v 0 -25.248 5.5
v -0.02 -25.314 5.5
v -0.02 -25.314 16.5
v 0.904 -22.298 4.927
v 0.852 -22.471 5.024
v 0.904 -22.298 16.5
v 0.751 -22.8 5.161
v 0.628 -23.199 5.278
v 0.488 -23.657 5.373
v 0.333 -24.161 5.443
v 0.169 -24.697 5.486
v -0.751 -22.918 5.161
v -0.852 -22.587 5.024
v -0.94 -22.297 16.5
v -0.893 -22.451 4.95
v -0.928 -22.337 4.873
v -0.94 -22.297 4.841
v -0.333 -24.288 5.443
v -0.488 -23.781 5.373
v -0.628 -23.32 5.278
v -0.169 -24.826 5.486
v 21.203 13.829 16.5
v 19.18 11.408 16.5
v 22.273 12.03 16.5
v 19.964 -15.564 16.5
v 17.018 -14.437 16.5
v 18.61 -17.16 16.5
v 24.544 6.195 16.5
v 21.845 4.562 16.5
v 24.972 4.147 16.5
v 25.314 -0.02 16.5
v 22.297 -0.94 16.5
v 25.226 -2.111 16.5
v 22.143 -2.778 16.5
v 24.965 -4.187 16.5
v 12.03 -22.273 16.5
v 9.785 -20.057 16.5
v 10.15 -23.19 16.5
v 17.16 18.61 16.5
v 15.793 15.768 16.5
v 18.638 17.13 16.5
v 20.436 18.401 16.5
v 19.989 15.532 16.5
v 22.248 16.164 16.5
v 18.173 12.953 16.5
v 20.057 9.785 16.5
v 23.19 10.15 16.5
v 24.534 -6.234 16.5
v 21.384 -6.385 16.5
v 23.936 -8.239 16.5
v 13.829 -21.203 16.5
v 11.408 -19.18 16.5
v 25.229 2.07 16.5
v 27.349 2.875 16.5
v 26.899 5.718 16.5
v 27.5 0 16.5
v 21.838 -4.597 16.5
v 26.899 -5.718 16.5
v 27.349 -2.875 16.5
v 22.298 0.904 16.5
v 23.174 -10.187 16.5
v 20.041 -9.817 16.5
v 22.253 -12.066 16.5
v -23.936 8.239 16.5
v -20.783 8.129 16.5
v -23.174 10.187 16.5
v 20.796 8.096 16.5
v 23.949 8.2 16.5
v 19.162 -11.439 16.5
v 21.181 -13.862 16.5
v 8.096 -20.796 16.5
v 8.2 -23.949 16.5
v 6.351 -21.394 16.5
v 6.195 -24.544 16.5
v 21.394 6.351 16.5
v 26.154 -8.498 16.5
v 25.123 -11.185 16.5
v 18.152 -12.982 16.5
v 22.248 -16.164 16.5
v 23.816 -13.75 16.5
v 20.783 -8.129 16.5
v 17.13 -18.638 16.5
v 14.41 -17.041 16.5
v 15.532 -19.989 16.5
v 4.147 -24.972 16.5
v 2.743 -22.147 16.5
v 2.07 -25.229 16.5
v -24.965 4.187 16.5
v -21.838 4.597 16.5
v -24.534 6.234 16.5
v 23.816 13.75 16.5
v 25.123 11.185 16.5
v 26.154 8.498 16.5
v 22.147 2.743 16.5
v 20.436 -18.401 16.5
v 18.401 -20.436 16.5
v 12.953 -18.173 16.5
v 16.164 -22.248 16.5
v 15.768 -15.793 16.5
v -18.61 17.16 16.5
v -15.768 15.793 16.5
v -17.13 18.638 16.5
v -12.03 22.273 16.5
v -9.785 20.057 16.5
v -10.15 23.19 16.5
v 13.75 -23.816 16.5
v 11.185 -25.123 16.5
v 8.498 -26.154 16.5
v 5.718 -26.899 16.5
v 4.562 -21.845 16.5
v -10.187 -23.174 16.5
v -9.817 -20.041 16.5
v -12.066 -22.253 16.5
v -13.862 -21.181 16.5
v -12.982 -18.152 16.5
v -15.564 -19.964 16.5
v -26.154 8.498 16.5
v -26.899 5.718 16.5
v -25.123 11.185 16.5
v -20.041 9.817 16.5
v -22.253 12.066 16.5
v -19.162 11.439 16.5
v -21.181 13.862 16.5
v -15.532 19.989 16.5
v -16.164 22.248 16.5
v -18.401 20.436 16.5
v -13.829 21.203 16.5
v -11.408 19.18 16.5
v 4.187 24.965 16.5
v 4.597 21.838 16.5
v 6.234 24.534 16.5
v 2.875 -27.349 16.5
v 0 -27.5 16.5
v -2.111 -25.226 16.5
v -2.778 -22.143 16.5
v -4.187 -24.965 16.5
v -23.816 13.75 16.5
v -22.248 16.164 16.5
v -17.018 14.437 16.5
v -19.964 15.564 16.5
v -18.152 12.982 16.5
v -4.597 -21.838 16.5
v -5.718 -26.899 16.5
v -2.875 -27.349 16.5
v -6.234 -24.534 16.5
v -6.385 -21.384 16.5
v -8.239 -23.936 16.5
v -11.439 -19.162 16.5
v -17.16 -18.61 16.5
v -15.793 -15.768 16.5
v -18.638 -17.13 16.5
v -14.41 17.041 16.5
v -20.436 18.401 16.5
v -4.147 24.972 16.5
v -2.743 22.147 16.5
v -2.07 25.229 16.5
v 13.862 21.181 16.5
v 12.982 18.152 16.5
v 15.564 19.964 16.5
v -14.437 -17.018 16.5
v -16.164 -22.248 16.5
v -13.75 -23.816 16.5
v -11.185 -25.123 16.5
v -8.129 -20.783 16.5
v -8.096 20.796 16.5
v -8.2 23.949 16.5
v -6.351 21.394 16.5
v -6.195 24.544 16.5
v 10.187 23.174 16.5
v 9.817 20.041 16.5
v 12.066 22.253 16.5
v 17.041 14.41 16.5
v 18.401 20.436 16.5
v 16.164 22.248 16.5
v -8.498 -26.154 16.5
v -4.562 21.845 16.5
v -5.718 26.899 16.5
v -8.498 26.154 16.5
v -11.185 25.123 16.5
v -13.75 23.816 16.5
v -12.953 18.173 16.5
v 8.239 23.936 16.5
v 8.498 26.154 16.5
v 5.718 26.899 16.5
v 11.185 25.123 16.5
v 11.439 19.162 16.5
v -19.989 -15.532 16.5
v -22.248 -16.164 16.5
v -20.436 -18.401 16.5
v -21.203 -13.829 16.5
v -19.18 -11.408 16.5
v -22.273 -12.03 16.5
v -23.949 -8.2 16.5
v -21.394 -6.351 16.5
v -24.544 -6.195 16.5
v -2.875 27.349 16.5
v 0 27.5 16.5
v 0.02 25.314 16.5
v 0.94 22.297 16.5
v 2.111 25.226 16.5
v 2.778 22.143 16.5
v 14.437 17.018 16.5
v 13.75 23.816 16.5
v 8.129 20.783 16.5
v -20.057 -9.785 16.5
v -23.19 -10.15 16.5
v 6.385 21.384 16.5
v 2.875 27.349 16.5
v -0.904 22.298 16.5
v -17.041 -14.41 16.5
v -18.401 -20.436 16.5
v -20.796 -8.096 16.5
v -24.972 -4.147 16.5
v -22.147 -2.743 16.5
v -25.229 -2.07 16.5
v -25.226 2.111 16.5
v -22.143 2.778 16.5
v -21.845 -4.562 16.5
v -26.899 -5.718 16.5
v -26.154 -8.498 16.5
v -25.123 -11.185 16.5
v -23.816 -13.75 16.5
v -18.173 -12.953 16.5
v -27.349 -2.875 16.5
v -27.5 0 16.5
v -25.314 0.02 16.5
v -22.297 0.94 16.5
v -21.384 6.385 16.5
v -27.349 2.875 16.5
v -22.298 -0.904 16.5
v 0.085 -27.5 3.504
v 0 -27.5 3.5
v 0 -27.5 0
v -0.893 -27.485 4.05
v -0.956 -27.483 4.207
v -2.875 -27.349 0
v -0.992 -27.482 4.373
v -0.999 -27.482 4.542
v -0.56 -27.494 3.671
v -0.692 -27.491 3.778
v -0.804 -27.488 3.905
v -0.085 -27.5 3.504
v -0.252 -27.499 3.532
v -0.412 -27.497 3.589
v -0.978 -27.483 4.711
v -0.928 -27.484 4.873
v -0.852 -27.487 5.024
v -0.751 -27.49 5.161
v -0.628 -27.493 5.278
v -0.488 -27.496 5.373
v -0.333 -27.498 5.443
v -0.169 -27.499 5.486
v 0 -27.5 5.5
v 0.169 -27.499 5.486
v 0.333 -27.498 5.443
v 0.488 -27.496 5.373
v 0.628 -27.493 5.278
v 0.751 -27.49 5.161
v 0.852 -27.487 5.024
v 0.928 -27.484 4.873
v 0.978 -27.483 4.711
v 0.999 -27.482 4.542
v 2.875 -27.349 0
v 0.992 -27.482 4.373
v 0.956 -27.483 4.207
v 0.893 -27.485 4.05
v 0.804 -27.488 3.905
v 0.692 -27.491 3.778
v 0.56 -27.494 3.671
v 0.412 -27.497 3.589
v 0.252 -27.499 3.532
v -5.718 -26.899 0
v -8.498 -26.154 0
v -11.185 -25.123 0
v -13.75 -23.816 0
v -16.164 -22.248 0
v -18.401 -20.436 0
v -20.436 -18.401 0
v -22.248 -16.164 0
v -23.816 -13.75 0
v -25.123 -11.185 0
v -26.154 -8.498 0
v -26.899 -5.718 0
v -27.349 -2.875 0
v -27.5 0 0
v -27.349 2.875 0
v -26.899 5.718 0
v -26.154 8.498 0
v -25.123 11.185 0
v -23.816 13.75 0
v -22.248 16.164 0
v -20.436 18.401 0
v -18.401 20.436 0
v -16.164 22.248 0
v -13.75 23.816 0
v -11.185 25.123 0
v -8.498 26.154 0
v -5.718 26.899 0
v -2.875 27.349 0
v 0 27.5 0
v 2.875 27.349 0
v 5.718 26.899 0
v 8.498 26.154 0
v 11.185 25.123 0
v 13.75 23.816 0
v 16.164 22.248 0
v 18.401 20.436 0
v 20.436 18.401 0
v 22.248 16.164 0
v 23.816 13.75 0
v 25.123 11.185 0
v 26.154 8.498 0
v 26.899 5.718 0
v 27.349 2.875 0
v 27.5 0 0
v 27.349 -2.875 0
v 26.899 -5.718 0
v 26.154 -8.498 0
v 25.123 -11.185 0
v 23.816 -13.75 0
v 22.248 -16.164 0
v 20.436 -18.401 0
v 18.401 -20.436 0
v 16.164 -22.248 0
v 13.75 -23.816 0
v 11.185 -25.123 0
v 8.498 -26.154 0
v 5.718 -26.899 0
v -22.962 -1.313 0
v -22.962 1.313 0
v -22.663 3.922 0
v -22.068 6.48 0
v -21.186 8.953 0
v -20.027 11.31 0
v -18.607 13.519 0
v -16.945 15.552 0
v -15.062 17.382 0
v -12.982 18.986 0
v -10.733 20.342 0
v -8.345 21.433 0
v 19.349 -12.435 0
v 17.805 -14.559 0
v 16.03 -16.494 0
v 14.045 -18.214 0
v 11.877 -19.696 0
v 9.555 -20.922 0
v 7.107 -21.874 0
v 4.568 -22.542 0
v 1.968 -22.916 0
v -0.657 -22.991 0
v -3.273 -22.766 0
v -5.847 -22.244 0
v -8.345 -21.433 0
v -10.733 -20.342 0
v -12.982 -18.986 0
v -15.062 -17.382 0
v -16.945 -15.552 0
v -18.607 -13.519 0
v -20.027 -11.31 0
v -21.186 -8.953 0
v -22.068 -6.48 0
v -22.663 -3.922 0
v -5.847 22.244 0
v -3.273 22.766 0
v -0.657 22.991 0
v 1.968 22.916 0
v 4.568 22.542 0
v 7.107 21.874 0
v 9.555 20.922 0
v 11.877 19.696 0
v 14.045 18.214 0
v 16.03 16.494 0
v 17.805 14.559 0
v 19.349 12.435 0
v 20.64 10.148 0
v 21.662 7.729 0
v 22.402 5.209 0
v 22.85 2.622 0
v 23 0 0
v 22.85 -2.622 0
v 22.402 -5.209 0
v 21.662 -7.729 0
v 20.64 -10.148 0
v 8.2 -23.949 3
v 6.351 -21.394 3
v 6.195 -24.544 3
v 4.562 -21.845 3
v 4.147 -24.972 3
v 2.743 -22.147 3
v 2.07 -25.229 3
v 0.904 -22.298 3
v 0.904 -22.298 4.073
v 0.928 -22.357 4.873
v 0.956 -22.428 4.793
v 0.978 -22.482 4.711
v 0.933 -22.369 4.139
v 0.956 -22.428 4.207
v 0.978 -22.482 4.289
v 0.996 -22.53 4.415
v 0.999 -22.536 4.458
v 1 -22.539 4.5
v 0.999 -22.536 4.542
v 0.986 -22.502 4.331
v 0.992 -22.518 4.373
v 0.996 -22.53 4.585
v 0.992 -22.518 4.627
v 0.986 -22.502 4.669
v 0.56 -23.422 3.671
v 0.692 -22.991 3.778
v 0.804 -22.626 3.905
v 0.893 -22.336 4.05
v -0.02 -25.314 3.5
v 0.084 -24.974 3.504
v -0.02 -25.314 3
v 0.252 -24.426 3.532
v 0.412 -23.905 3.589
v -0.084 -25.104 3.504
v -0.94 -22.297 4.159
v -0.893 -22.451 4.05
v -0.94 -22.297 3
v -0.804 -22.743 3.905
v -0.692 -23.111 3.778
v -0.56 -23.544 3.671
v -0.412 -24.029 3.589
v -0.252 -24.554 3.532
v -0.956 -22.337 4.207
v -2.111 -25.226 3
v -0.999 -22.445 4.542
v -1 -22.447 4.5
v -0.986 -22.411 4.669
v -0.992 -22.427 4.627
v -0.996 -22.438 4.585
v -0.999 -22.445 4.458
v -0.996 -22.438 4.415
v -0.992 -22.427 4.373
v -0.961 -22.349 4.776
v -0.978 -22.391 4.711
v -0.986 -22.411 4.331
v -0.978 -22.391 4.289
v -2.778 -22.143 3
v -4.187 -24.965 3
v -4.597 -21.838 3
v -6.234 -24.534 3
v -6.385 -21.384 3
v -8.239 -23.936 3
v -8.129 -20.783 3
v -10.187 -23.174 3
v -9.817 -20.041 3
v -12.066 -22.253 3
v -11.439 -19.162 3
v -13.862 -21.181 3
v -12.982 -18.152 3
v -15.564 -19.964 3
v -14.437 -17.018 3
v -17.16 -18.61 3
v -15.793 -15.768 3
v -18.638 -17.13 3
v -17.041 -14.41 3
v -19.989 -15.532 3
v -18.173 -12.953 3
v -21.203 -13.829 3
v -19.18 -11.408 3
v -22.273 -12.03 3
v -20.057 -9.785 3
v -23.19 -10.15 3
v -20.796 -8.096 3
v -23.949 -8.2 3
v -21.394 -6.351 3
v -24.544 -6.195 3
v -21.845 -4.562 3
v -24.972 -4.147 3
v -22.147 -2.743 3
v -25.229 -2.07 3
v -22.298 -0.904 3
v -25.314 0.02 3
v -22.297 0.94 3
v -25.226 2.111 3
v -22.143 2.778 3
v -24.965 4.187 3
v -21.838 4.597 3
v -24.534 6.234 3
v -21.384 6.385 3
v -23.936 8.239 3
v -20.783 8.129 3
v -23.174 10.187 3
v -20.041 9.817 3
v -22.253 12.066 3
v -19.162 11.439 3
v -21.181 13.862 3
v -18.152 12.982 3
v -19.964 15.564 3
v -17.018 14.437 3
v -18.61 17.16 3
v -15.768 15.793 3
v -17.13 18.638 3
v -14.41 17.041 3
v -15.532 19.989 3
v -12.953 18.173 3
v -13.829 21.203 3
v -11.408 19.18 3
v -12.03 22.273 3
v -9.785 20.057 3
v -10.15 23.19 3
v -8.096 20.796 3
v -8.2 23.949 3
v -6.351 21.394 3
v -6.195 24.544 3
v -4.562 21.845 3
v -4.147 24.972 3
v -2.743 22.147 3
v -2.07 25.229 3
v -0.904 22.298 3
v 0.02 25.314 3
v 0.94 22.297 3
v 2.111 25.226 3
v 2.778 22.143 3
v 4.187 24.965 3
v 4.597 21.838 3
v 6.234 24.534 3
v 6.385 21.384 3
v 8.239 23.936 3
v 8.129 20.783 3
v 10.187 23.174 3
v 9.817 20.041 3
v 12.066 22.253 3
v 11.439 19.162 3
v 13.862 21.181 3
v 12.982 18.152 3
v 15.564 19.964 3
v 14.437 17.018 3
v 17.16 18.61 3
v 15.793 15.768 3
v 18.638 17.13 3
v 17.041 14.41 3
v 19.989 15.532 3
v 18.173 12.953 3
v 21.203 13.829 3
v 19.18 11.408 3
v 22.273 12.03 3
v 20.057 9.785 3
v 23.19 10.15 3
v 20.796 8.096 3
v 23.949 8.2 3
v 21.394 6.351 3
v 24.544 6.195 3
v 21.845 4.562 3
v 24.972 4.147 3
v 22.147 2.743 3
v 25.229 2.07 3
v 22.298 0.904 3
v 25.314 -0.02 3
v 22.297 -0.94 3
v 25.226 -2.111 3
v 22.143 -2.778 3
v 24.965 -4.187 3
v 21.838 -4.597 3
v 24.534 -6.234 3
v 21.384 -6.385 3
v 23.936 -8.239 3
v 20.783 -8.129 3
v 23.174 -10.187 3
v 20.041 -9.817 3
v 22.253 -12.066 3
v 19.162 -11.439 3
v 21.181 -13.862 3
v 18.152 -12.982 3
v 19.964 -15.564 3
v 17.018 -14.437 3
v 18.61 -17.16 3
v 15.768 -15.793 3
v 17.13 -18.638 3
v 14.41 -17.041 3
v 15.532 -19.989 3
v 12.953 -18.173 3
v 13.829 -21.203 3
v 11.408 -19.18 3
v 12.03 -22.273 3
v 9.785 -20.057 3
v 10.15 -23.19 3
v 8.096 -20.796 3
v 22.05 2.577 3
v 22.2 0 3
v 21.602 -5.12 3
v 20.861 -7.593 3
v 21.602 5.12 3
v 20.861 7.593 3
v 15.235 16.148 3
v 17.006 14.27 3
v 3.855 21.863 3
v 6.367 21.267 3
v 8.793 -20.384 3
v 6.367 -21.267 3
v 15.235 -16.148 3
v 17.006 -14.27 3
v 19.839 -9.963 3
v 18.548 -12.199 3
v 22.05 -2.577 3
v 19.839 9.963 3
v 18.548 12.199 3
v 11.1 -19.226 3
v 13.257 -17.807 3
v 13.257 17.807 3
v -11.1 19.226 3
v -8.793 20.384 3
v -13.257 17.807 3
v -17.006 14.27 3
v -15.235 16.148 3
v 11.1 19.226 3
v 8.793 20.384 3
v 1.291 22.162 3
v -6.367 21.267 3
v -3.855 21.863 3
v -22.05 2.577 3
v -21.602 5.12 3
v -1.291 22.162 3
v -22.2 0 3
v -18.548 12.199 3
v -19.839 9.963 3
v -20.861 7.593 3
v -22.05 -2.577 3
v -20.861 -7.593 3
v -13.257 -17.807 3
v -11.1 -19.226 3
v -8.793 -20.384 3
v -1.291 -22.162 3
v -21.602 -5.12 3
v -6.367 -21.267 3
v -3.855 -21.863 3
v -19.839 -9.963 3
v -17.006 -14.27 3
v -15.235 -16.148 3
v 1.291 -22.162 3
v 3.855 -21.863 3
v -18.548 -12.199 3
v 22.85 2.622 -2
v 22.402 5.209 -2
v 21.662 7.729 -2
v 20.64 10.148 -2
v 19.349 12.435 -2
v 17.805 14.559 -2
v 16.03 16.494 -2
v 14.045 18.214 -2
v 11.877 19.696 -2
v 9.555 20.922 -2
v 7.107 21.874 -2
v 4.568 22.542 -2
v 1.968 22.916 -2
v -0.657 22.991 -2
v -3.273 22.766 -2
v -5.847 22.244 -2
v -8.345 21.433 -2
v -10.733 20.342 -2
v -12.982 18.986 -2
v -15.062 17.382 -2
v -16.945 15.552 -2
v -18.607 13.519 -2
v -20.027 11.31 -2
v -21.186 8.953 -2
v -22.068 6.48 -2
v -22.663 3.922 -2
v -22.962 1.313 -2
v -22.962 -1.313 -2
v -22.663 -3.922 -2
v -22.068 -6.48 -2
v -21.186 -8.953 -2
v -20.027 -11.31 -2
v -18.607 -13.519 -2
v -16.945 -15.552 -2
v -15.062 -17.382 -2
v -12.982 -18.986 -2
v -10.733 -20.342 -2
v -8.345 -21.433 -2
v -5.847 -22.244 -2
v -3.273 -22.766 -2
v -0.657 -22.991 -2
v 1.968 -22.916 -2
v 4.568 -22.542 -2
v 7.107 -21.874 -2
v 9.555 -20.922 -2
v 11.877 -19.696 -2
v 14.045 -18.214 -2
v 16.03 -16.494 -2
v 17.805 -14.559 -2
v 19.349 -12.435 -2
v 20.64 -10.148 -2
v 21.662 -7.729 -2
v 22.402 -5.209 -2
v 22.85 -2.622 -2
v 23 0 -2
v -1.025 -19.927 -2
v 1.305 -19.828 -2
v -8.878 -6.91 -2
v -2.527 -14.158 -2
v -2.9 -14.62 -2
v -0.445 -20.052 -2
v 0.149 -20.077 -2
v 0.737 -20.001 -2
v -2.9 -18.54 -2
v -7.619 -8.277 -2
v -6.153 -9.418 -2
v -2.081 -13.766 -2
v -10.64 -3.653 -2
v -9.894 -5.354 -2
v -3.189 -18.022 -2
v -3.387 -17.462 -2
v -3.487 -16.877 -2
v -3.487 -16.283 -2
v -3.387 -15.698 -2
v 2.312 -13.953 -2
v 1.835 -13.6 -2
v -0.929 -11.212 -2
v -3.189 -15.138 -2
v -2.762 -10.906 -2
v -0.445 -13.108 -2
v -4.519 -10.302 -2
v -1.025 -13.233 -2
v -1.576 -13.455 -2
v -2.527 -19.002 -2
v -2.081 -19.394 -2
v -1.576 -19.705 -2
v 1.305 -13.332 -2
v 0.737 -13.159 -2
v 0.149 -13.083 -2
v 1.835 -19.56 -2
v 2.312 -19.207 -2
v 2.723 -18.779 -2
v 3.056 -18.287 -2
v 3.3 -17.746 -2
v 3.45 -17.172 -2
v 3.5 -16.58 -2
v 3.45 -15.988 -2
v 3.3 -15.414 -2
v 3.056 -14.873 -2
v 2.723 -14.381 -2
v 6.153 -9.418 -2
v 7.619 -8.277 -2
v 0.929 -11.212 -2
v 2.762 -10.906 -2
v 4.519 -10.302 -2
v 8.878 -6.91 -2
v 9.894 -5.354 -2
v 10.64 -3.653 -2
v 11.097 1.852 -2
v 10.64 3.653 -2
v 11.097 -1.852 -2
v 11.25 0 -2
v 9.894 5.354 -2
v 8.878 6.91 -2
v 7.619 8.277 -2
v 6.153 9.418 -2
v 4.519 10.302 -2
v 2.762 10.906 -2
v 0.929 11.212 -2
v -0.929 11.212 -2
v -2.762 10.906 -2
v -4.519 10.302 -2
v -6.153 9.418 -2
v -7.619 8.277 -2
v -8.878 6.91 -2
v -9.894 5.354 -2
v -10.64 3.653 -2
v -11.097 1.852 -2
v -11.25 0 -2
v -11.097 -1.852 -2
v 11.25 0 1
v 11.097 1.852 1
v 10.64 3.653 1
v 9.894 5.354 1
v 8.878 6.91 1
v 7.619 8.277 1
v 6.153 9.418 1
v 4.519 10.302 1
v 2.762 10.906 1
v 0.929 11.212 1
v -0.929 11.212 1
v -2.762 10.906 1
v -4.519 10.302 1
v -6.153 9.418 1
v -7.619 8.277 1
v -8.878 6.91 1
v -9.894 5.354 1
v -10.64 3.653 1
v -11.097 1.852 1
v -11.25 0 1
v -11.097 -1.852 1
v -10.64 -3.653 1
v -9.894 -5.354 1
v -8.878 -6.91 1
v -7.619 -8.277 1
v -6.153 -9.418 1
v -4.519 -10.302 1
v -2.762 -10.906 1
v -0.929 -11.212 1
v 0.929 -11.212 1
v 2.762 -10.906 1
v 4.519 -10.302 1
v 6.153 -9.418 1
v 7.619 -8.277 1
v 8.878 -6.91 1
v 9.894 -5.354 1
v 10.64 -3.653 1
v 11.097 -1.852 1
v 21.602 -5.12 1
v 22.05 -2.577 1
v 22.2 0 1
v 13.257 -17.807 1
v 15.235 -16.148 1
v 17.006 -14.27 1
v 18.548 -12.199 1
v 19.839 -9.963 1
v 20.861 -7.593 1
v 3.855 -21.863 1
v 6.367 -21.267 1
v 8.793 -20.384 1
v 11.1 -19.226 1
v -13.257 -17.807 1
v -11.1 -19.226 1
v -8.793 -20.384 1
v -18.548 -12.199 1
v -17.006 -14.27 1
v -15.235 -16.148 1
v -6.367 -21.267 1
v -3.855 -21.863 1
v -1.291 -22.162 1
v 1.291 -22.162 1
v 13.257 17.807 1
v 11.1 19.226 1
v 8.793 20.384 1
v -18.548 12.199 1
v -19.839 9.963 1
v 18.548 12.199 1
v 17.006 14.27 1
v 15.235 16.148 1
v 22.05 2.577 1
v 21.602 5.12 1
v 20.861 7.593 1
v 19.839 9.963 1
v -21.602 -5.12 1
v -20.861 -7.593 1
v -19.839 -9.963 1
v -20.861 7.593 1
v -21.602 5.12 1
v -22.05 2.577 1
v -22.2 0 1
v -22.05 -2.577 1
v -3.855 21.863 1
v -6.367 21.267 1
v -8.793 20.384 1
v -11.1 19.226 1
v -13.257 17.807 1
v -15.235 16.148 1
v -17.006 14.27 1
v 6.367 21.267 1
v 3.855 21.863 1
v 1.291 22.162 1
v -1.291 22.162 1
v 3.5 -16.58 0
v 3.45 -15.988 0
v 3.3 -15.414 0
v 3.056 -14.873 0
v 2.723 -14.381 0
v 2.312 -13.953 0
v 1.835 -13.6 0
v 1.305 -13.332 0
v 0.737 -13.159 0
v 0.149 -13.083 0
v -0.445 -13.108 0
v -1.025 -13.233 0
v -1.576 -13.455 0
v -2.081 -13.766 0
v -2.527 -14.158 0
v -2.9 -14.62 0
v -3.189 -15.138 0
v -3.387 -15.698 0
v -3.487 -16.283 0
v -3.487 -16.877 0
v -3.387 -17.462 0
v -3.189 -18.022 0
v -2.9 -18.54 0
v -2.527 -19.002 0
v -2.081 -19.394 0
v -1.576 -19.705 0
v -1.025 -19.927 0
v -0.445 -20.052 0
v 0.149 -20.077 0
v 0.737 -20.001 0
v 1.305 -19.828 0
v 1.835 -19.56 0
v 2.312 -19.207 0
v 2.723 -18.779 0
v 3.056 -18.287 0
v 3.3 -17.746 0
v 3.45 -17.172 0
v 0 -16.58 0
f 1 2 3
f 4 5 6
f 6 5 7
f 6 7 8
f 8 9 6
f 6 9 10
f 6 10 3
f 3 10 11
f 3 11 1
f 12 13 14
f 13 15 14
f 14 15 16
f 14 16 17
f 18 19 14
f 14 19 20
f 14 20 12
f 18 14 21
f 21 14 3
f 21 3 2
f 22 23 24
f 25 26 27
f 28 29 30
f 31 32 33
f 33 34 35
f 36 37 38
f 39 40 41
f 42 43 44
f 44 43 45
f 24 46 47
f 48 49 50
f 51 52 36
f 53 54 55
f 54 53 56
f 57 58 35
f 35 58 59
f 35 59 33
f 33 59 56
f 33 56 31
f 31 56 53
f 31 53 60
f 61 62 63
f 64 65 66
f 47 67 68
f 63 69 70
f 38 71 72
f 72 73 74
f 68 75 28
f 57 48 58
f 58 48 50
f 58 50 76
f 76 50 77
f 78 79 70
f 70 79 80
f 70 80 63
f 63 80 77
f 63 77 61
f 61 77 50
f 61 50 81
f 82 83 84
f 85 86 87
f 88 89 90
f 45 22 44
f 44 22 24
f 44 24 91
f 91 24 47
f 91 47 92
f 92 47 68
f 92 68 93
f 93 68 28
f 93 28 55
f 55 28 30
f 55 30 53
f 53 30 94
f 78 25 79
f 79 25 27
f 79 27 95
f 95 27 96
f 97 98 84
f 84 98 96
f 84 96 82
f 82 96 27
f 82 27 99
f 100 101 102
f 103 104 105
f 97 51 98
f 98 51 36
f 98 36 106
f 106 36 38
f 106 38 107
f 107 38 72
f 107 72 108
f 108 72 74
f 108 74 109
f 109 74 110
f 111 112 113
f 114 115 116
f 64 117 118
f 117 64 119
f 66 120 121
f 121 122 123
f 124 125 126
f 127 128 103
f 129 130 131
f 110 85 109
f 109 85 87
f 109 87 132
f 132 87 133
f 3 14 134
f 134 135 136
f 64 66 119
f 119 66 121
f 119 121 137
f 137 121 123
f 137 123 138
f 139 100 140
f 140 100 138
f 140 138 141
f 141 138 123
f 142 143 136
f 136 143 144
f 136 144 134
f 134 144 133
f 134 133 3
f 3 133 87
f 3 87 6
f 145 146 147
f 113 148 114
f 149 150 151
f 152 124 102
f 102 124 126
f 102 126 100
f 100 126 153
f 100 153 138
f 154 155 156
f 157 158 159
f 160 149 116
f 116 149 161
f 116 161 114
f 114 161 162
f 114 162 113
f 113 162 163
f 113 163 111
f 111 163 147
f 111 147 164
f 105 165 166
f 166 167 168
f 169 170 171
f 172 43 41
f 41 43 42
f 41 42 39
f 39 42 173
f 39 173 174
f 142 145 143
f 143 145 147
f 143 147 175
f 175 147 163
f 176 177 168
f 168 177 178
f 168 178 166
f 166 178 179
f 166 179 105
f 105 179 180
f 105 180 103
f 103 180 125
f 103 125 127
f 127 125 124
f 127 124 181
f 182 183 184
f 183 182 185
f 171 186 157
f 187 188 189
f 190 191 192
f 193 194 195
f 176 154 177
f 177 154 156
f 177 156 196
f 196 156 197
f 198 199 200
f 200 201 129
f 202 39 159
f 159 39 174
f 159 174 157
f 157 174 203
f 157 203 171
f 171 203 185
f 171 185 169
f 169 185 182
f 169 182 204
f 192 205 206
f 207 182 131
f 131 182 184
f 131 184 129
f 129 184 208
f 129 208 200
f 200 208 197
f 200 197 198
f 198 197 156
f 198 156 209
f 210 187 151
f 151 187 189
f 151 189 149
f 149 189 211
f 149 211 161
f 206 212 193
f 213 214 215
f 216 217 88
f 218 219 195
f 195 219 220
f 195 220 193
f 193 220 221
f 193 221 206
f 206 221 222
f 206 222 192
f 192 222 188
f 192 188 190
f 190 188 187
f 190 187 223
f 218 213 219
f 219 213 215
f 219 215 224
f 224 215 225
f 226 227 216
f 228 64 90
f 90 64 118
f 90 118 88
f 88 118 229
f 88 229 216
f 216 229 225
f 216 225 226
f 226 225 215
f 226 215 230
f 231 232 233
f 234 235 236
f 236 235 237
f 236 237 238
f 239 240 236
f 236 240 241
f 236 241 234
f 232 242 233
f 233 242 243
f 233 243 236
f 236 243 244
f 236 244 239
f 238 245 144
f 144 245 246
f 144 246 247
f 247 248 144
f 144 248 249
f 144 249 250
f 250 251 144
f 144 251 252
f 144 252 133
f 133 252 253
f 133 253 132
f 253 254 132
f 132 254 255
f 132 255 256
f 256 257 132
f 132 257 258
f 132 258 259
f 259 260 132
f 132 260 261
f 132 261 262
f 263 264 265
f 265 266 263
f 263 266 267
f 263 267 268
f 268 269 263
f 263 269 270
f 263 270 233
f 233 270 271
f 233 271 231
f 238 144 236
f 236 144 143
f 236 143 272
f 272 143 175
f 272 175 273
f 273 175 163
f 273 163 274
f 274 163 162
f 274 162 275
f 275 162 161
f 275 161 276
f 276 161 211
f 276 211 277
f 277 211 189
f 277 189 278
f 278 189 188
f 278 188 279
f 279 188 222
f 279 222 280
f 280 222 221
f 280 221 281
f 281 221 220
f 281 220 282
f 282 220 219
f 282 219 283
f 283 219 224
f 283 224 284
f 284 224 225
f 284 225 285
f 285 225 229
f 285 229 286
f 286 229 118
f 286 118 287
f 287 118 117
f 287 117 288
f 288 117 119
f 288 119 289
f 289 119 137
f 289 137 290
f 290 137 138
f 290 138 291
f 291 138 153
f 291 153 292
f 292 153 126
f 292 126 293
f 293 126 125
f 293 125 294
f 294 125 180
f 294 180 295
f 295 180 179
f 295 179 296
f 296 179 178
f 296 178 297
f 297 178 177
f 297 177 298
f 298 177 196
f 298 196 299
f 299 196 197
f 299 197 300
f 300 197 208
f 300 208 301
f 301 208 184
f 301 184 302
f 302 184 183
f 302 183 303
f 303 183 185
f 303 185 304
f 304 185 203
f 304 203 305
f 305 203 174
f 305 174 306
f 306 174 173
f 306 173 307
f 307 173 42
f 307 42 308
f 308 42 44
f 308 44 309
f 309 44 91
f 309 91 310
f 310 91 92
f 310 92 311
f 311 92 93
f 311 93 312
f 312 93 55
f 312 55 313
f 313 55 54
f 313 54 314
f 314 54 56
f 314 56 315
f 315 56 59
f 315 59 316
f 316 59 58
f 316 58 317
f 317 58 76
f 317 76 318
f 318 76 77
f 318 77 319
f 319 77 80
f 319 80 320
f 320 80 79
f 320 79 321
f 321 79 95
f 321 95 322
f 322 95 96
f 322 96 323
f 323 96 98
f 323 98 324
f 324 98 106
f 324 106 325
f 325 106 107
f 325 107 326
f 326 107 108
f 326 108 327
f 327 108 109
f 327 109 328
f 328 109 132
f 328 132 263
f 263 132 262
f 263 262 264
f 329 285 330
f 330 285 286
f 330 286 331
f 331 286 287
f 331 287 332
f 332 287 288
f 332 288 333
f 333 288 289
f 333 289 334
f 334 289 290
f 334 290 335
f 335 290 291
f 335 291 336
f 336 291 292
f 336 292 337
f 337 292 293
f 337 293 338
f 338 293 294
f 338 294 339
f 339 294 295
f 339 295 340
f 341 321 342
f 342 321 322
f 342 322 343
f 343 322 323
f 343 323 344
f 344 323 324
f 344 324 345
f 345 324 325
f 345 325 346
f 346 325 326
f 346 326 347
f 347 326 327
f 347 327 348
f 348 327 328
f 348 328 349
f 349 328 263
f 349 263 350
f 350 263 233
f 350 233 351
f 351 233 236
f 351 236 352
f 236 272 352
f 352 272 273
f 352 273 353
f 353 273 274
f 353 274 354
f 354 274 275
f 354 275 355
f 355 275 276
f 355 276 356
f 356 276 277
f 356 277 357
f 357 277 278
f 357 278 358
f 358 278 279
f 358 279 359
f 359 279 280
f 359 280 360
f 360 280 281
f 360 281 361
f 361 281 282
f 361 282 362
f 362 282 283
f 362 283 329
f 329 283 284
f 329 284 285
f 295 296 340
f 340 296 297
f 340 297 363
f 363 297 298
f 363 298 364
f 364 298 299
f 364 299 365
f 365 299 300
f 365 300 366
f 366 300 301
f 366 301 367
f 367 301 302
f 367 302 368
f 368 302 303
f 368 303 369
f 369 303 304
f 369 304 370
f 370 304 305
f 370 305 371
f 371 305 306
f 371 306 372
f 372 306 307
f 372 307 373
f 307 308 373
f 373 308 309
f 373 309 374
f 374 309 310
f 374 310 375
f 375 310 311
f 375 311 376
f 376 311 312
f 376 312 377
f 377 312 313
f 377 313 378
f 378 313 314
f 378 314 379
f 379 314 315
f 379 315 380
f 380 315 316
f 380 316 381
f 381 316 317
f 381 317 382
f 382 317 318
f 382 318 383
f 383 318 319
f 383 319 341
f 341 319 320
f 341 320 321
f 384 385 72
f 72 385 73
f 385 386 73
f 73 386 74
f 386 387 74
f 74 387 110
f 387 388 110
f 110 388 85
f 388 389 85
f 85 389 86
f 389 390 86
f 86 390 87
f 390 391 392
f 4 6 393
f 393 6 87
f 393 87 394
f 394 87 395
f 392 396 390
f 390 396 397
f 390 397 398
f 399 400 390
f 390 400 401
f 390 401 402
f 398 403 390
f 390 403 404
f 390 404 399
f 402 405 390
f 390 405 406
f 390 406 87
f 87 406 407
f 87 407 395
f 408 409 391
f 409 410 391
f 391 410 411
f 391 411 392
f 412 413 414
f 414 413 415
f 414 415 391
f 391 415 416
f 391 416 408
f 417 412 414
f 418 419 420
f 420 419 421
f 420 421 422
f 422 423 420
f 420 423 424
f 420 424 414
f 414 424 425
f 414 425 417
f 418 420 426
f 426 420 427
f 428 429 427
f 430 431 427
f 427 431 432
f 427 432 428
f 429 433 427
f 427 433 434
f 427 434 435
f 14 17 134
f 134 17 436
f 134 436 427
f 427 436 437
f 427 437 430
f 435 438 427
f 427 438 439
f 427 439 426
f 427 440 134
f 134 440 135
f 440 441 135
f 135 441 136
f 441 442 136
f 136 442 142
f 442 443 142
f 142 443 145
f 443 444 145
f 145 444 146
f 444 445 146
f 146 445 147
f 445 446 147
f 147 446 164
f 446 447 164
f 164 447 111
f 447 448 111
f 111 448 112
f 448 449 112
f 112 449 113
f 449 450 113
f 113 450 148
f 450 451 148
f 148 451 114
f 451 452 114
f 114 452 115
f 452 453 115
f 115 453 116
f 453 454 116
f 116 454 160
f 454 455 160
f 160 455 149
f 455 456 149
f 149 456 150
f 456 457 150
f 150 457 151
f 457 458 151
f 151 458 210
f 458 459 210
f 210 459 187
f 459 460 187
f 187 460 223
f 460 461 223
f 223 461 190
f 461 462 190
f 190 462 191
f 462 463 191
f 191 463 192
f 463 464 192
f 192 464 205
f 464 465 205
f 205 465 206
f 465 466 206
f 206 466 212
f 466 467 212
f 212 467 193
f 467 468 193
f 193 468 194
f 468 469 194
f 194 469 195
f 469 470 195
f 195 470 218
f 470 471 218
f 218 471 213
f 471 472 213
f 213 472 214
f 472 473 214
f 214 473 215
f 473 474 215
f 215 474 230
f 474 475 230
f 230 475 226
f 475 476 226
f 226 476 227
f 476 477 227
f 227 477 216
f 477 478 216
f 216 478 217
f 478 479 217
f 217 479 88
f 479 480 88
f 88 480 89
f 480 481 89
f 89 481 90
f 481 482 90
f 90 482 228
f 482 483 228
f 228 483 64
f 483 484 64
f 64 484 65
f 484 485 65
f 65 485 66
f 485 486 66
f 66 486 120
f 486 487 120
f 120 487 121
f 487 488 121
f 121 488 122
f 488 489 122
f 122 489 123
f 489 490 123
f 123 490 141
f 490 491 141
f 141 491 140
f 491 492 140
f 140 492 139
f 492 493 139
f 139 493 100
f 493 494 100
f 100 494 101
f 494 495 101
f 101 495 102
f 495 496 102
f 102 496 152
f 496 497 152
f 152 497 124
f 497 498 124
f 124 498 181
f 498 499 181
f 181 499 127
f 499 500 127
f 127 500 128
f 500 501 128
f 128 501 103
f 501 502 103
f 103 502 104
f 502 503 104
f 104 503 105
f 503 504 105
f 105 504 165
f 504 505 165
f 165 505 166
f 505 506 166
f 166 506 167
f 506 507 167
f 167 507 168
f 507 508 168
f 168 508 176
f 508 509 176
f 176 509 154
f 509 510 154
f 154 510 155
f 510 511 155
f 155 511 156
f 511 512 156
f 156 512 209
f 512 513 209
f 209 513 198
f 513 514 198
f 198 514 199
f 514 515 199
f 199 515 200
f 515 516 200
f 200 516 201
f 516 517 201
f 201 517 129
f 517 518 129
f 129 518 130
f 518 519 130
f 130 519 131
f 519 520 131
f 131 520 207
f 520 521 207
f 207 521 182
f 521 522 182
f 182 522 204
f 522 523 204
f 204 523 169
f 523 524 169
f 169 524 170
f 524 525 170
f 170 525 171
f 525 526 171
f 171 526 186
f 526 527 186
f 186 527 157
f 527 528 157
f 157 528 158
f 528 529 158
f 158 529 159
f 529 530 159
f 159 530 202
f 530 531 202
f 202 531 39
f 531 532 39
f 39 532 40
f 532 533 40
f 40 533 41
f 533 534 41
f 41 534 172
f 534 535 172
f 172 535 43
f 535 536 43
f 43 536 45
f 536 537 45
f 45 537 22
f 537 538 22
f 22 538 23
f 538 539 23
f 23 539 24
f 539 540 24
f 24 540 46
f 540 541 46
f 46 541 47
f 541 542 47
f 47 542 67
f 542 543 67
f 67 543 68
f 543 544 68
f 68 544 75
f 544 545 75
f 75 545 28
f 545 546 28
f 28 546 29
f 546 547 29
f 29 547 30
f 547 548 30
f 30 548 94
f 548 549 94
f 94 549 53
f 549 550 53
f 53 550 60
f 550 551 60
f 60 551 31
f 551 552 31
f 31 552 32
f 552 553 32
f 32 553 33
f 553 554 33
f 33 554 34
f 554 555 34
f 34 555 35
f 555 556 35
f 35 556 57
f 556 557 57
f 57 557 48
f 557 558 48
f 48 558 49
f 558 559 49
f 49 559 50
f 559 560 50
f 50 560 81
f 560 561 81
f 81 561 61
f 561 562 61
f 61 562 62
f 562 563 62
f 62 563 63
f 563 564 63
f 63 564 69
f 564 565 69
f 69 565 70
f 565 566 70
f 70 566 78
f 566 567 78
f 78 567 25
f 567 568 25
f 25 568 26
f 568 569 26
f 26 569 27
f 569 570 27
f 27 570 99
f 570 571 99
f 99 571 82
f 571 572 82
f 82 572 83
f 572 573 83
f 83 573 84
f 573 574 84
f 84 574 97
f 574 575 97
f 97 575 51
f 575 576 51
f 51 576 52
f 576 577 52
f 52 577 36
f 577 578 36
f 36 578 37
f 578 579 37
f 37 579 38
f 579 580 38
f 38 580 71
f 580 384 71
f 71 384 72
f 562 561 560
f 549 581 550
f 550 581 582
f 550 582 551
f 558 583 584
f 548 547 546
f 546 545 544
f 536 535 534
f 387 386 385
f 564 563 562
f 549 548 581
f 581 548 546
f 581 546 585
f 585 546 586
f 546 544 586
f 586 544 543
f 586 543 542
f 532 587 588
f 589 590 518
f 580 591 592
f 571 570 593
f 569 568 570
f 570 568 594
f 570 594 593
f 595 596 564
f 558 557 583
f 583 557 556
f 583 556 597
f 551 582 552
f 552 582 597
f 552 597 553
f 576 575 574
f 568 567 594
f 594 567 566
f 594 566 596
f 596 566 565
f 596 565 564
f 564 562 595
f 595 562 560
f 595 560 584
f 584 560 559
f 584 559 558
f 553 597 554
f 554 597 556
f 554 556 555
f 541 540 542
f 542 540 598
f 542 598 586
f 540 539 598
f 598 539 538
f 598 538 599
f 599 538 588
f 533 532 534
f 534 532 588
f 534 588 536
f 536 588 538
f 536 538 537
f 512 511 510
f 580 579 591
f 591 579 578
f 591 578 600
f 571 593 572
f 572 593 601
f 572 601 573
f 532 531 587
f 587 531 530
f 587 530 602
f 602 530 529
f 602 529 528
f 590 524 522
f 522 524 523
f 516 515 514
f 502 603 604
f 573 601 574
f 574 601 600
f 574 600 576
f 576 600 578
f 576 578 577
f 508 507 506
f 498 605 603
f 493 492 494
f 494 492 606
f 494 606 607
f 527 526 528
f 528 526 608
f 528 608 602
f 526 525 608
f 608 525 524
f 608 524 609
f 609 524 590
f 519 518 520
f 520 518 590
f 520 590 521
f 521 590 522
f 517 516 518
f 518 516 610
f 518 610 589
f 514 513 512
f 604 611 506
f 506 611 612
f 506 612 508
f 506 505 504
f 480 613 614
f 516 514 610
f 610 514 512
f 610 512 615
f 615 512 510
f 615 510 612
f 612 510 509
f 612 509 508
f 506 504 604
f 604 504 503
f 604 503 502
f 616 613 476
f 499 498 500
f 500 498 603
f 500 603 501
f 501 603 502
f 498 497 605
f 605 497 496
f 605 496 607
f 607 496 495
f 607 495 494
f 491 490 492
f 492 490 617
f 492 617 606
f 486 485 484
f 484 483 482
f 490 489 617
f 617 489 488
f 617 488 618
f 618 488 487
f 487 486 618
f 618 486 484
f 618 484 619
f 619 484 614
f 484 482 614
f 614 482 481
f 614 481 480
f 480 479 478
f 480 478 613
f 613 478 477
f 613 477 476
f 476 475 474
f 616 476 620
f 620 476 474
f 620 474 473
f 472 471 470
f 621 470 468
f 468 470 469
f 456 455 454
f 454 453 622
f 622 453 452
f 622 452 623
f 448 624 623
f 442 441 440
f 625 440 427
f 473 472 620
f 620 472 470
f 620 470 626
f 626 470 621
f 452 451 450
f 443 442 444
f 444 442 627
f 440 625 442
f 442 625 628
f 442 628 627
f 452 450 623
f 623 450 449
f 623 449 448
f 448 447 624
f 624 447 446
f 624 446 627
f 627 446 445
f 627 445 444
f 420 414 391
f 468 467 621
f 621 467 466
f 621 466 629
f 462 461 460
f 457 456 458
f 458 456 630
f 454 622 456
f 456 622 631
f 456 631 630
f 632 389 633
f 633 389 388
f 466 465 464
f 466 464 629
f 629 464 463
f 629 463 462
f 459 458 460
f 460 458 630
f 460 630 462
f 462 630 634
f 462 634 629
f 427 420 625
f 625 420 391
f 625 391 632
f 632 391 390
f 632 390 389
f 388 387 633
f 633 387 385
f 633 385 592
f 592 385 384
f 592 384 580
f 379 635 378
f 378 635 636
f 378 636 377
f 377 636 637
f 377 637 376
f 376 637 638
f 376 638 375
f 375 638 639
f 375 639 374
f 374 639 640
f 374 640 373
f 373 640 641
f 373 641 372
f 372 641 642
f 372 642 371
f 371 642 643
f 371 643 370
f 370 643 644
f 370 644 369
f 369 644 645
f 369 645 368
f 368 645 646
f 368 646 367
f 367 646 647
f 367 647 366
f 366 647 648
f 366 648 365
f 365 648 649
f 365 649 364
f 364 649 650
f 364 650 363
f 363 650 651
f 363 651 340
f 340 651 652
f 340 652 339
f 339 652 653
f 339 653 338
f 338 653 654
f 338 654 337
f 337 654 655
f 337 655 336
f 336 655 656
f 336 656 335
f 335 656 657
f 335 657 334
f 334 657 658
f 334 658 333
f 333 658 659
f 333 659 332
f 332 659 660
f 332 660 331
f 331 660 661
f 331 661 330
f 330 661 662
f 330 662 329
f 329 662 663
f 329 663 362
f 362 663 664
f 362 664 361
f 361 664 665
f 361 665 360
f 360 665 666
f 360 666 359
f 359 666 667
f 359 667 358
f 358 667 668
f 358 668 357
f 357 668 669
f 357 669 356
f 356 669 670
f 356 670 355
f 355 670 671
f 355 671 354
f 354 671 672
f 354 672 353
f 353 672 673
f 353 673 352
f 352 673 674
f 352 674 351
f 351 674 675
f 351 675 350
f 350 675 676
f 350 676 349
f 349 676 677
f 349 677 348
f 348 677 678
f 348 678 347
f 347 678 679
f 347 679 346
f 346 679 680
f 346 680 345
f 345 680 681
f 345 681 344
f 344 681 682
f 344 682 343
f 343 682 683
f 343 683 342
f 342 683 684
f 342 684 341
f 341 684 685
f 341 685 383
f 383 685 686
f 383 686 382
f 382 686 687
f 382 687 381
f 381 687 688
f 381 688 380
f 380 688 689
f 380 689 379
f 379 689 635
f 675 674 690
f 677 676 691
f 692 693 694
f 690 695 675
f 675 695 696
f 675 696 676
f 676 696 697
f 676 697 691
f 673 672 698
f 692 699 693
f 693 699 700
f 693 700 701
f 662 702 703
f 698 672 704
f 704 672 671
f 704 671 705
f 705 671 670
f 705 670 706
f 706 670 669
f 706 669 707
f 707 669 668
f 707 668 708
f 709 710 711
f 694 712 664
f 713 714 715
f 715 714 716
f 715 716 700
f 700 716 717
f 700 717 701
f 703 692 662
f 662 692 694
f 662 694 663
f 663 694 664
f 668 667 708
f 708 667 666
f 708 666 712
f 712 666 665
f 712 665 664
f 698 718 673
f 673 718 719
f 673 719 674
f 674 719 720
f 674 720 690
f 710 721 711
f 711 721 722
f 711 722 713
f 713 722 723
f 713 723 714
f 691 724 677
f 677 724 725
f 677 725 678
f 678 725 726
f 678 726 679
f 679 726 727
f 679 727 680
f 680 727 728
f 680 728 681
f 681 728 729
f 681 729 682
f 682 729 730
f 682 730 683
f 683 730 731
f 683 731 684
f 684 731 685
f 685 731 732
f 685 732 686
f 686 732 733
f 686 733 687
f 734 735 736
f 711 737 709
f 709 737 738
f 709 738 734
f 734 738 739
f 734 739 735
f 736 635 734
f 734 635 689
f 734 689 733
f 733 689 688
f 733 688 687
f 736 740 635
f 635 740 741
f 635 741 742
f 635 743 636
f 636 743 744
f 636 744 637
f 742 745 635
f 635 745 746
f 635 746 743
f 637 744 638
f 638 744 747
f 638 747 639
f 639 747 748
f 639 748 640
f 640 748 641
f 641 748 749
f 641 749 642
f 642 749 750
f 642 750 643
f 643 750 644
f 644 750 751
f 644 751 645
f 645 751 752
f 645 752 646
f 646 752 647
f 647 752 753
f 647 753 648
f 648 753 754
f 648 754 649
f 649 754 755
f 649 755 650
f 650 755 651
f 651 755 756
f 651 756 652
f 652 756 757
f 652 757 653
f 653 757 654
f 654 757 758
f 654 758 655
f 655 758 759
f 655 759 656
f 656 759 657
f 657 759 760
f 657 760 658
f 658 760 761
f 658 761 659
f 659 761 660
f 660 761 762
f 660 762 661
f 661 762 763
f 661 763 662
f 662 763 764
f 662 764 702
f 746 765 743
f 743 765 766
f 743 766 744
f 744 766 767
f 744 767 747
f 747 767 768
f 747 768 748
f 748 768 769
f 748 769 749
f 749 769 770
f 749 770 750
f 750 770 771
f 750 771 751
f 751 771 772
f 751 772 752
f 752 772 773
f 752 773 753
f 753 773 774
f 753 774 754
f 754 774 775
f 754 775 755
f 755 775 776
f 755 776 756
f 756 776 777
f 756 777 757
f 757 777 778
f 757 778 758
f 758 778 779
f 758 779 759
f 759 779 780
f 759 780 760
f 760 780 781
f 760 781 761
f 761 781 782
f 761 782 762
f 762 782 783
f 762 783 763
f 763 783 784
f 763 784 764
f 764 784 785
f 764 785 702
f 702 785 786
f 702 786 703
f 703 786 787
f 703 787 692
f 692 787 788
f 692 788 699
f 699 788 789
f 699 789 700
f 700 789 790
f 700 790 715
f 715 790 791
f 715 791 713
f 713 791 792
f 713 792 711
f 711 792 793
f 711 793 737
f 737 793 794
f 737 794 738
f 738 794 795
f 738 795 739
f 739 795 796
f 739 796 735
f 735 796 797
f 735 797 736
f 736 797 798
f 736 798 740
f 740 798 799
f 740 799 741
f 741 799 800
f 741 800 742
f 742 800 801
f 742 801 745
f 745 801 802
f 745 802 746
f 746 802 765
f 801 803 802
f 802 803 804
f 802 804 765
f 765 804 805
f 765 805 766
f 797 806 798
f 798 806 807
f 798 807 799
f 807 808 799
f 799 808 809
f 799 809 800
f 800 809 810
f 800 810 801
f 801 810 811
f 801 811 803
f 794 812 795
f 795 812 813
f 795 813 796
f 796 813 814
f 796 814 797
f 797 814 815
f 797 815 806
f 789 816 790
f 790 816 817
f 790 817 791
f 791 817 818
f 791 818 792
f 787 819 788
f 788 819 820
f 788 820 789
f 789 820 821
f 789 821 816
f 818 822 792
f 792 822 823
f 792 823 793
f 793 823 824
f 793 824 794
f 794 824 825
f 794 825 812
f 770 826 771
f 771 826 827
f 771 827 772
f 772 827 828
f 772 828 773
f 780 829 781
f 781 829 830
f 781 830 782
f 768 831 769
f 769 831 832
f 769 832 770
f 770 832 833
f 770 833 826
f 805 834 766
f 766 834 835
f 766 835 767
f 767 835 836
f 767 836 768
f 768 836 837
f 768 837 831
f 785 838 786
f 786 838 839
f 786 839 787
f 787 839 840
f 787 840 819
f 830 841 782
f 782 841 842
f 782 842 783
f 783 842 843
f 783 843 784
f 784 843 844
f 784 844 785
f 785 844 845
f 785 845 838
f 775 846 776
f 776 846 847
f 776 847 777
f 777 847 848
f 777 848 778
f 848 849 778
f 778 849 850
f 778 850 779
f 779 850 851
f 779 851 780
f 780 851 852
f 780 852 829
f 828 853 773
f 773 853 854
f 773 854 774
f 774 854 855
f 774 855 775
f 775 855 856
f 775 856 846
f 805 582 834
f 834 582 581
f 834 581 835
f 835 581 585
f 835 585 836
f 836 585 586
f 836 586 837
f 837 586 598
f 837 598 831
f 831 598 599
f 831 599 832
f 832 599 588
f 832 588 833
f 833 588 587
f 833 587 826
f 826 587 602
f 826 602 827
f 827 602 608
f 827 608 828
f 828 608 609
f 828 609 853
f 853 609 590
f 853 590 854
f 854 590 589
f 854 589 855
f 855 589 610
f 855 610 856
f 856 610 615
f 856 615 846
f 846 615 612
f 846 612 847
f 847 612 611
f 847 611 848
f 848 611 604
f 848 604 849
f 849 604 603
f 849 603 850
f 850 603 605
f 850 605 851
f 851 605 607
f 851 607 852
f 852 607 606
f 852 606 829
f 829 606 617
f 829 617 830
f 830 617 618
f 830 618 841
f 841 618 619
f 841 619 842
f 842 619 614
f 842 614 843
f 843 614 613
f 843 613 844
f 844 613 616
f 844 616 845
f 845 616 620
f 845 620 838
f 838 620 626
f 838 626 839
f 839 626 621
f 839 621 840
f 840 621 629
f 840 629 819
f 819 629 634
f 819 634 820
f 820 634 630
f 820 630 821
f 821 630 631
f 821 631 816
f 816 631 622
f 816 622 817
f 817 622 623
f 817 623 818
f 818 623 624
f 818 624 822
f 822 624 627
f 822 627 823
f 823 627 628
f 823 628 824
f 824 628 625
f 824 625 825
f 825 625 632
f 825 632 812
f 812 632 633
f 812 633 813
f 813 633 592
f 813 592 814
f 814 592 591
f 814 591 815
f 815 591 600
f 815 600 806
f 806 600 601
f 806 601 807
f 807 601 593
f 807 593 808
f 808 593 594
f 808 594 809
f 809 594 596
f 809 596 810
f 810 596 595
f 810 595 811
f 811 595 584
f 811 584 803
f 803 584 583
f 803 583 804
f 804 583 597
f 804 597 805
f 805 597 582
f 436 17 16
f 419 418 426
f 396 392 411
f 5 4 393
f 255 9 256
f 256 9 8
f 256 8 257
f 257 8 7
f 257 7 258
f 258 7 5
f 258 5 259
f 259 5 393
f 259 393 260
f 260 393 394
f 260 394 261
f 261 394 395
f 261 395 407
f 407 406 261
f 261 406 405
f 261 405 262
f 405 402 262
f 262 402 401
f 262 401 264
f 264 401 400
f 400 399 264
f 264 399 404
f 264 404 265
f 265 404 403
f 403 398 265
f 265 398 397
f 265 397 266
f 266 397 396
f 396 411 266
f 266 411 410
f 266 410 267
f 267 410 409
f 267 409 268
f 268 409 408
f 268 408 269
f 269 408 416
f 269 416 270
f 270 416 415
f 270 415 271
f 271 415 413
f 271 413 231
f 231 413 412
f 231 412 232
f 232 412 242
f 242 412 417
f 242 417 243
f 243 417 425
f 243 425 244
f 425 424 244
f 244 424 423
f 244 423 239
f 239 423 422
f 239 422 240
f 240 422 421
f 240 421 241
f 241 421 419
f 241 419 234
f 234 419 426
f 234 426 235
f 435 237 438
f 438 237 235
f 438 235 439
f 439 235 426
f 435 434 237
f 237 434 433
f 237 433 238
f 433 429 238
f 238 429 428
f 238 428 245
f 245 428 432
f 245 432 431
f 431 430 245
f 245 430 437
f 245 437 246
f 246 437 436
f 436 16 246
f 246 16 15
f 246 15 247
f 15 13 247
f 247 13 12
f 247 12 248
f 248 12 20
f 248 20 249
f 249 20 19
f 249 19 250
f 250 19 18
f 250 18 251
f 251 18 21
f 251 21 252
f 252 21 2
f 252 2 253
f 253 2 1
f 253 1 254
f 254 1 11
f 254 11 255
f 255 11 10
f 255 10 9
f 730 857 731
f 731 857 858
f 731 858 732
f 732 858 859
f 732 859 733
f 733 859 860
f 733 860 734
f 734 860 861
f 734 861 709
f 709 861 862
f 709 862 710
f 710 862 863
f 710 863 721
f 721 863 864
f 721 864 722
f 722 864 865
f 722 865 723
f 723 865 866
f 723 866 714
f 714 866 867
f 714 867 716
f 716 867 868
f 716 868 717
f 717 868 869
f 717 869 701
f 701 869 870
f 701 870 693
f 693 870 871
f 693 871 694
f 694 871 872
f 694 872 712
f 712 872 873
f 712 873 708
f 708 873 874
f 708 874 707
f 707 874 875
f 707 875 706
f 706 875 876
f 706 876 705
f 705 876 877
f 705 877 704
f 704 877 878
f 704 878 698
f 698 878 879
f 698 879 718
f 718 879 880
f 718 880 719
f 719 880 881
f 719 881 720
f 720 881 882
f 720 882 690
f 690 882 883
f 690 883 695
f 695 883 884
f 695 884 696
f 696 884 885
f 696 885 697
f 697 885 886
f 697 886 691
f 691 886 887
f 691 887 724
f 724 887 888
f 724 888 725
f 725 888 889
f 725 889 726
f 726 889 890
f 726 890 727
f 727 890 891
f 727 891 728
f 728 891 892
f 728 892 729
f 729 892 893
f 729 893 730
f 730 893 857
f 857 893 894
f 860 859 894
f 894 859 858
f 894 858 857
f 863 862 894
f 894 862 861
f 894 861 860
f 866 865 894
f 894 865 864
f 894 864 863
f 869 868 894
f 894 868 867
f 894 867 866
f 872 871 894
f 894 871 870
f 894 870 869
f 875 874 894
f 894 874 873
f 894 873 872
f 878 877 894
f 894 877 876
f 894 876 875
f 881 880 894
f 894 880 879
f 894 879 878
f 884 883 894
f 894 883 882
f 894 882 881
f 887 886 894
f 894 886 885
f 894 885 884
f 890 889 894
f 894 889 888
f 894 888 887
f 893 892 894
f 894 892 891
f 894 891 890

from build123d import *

# Parameters (mm, degrees)
SKETCH1_R           = 27.5
BOSS_EXTRUDE1_DEPTH = 6
BOSS_EXTRUDE2_START = 6
SKETCH2_R           = 27.5
BOSS_EXTRUDE2_DEPTH = 4.5
BOSS_EXTRUDE3_START = 10.5
SKETCH3_R           = 27.5
BOSS_EXTRUDE3_DEPTH = 6
CUT_EXTRUDE1_DEPTH  = 13.5
SKETCH10_R          = 23
BOSS_EXTRUDE4_DEPTH = 2
CUT_EXTRUDE7_START  = 16.5
SKETCH6_R           = 11.25
CUT_EXTRUDE7_DEPTH  = 19.5
CUT_EXTRUDE10_START = 3
SKETCH11_R          = 22.2
CUT_EXTRUDE10_DEPTH = 2
SKETCH12_R          = 1
CUT_EXTRUDE11_DEPTH = 28.5
SKETCH13_R          = 3.5
CUT_EXTRUDE12_DEPTH = 3


with BuildPart() as part:
    # Sketch1 → Boss-Extrude1 (new body)
    with BuildSketch(Plane.XY):
        Circle(SKETCH1_R)
    extrude(amount=BOSS_EXTRUDE1_DEPTH)

    # Sketch2 → Boss-Extrude2 (add)
    with BuildSketch(Plane.XY.offset(BOSS_EXTRUDE2_START)):
        Circle(SKETCH2_R)
    extrude(amount=BOSS_EXTRUDE2_DEPTH)

    # Sketch3 → Boss-Extrude3 (add)
    with BuildSketch(Plane.XY.offset(BOSS_EXTRUDE3_START)):
        Circle(SKETCH3_R)
    extrude(amount=BOSS_EXTRUDE3_DEPTH)

    # Sketch4 → Cut-Extrude1 (cut)
    with BuildSketch(Plane.XY.offset(16.5)):
        Polygon((8.200315972, -23.949003355), (8.095646912, -20.796423541), (10.150000757, -23.190028641), (9.785351218, -20.056859988), (12.030350745, -22.272642516), (11.408211652, -19.180287743), (13.828521239, -21.20311166), (12.953142433, -18.172694685), (15.532228911, -19.988742051), (14.409590118, -17.040963696), (17.12983571, -18.637829065), (15.76760569, -15.792825644), (18.610428362, -17.159600809), (17.017912527, -14.43680658), (19.963892917, -15.564155079), (18.151969766, -12.982169489), (21.18098384, -13.862390389), (19.162030646, -11.438851016), (22.253387167, -12.065931515), (20.041195426, -9.817393592), (23.173777294, -10.187050095), (20.78345852, -8.128873414), (23.935867025, -8.238580793), (21.383749518, -6.384824789), (24.534450513, -6.233833631), (21.837967824, -4.597161336), (24.965438827, -4.186503063), (22.143010666, -2.77809461), (25.225887879, -2.110574435), (22.296794293, -0.940050681), (25.314018538, -0.020228443), (22.298268206, 0.904414747), (25.229228782, 2.070255729), (22.147422337, 2.742702106), (24.972097812, 4.146597956), (21.845287117, 4.562254028), (24.544382092, 6.194614714), (21.393926434, 6.350641129), (23.949003355, 8.200315972), (20.796423541, 8.095646912), (23.190028641, 10.150000757), (20.056859988, 9.785351218), (22.272642516, 12.030350745), (19.180287743, 11.408211652), (21.20311166, 13.828521239), (18.172694685, 12.953142433), (19.988742051, 15.532228911), (17.040963696, 14.409590118), (18.637829065, 17.12983571), (15.792825644, 15.76760569), (17.159600809, 18.610428362), (14.43680658, 17.017912527), (15.564155079, 19.963892917), (12.982169489, 18.151969766), (13.862390389, 21.18098384), (11.438851016, 19.162030646), (12.065931515, 22.253387167), (9.817393592, 20.041195426), (10.187050095, 23.173777294), (8.128873414, 20.78345852), (8.238580793, 23.935867025), (6.384824789, 21.383749518), (6.233833631, 24.534450513), (4.597161336, 21.837967824), (4.186503063, 24.965438827), (2.77809461, 22.143010666), (2.110574435, 25.225887879), (0.940050681, 22.296794293), (0.020228443, 25.314018538), (-0.904414747, 22.298268206), (-2.070255729, 25.229228782), (-2.742702106, 22.147422337), (-4.146597956, 24.972097812), (-4.562254028, 21.845287117), (-6.194614714, 24.544382092), (-6.350641129, 21.393926434), (-8.200315972, 23.949003355), (-8.095646912, 20.796423541), (-10.150000757, 23.190028641), (-9.785351218, 20.056859988), (-12.030350745, 22.272642516), (-11.408211652, 19.180287743), (-13.828521239, 21.20311166), (-12.953142433, 18.172694685), (-15.532228911, 19.988742051), (-14.409590118, 17.040963696), (-17.12983571, 18.637829065), (-15.76760569, 15.792825644), (-18.610428362, 17.159600809), (-17.017912527, 14.43680658), (-19.963892917, 15.564155079), (-18.151969766, 12.982169489), (-21.18098384, 13.862390389), (-19.162030646, 11.438851016), (-22.253387167, 12.065931515), (-20.041195426, 9.817393592), (-23.173777294, 10.187050095), (-20.78345852, 8.128873414), (-23.935867025, 8.238580793), (-21.383749518, 6.384824789), (-24.534450513, 6.233833631), (-21.837967824, 4.597161336), (-24.965438827, 4.186503063), (-22.143010666, 2.77809461), (-25.225887879, 2.110574435), (-22.296794293, 0.940050681), (-25.314018538, 0.020228443), (-22.298268206, -0.904414747), (-25.229228782, -2.070255729), (-22.147422337, -2.742702106), (-24.972097812, -4.146597956), (-21.845287117, -4.562254028), (-24.544382092, -6.194614714), (-21.393926434, -6.350641129), (-23.949003355, -8.200315972), (-20.796423541, -8.095646912), (-23.190028641, -10.150000757), (-20.056859988, -9.785351218), (-22.272642516, -12.030350745), (-19.180287743, -11.408211652), (-21.20311166, -13.828521239), (-18.172694685, -12.953142433), (-19.988742051, -15.532228911), (-17.040963696, -14.409590118), (-18.637829065, -17.12983571), (-15.792825644, -15.76760569), (-17.159600809, -18.610428362), (-14.43680658, -17.017912527), (-15.564155079, -19.963892917), (-12.982169489, -18.151969766), (-13.862390389, -21.18098384), (-11.438851016, -19.162030646), (-12.065931515, -22.253387167), (-9.817393592, -20.041195426), (-10.187050095, -23.173777294), (-8.128873414, -20.78345852), (-8.238580793, -23.935867025), (-6.384824789, -21.383749518), (-6.233833631, -24.534450513), (-4.597161336, -21.837967824), (-4.186503063, -24.965438827), (-2.77809461, -22.143010666), (-2.110574435, -25.225887879), (-0.940050681, -22.296794293), (-0.020228443, -25.314018538), (0.904414747, -22.298268206), (2.070255729, -25.229228782), (2.742702106, -22.147422337), (4.146597956, -24.972097812), (4.562254028, -21.845287117), (6.194614714, -24.544382092), (6.350641129, -21.393926434), align=None)
    extrude(amount=-CUT_EXTRUDE1_DEPTH, mode=Mode.SUBTRACT)

    # Sketch10 → Boss-Extrude4 (add)
    with BuildSketch(Plane.XY):
        Circle(SKETCH10_R)
    extrude(amount=-BOSS_EXTRUDE4_DEPTH)

    # Sketch6 → Cut-Extrude7 (cut, through all)
    with BuildSketch(Plane.XY.offset(CUT_EXTRUDE7_START)):
        Circle(SKETCH6_R)
    extrude(amount=-CUT_EXTRUDE7_DEPTH, mode=Mode.SUBTRACT)

    # Sketch11 → Cut-Extrude10 (cut)
    with BuildSketch(Plane.XY.offset(CUT_EXTRUDE10_START)):
        Circle(SKETCH11_R)
    extrude(amount=-CUT_EXTRUDE10_DEPTH, mode=Mode.SUBTRACT)

    # Sketch12 → Cut-Extrude11 (cut, through all)
    with BuildSketch(Plane(origin=(0, 0, 0), x_dir=(1, 0, 0), z_dir=(0, 1, 0))):
        with Locations((0, -4.5)):
            Circle(SKETCH12_R)
    extrude(amount=-CUT_EXTRUDE11_DEPTH, mode=Mode.SUBTRACT)

    # Sketch13 → Cut-Extrude12 (cut, through all)
    with BuildSketch(Plane.XY):
        with Locations((0, -16.58)):
            Circle(SKETCH13_R)
    extrude(amount=-CUT_EXTRUDE12_DEPTH, mode=Mode.SUBTRACT)


solid = part.part
